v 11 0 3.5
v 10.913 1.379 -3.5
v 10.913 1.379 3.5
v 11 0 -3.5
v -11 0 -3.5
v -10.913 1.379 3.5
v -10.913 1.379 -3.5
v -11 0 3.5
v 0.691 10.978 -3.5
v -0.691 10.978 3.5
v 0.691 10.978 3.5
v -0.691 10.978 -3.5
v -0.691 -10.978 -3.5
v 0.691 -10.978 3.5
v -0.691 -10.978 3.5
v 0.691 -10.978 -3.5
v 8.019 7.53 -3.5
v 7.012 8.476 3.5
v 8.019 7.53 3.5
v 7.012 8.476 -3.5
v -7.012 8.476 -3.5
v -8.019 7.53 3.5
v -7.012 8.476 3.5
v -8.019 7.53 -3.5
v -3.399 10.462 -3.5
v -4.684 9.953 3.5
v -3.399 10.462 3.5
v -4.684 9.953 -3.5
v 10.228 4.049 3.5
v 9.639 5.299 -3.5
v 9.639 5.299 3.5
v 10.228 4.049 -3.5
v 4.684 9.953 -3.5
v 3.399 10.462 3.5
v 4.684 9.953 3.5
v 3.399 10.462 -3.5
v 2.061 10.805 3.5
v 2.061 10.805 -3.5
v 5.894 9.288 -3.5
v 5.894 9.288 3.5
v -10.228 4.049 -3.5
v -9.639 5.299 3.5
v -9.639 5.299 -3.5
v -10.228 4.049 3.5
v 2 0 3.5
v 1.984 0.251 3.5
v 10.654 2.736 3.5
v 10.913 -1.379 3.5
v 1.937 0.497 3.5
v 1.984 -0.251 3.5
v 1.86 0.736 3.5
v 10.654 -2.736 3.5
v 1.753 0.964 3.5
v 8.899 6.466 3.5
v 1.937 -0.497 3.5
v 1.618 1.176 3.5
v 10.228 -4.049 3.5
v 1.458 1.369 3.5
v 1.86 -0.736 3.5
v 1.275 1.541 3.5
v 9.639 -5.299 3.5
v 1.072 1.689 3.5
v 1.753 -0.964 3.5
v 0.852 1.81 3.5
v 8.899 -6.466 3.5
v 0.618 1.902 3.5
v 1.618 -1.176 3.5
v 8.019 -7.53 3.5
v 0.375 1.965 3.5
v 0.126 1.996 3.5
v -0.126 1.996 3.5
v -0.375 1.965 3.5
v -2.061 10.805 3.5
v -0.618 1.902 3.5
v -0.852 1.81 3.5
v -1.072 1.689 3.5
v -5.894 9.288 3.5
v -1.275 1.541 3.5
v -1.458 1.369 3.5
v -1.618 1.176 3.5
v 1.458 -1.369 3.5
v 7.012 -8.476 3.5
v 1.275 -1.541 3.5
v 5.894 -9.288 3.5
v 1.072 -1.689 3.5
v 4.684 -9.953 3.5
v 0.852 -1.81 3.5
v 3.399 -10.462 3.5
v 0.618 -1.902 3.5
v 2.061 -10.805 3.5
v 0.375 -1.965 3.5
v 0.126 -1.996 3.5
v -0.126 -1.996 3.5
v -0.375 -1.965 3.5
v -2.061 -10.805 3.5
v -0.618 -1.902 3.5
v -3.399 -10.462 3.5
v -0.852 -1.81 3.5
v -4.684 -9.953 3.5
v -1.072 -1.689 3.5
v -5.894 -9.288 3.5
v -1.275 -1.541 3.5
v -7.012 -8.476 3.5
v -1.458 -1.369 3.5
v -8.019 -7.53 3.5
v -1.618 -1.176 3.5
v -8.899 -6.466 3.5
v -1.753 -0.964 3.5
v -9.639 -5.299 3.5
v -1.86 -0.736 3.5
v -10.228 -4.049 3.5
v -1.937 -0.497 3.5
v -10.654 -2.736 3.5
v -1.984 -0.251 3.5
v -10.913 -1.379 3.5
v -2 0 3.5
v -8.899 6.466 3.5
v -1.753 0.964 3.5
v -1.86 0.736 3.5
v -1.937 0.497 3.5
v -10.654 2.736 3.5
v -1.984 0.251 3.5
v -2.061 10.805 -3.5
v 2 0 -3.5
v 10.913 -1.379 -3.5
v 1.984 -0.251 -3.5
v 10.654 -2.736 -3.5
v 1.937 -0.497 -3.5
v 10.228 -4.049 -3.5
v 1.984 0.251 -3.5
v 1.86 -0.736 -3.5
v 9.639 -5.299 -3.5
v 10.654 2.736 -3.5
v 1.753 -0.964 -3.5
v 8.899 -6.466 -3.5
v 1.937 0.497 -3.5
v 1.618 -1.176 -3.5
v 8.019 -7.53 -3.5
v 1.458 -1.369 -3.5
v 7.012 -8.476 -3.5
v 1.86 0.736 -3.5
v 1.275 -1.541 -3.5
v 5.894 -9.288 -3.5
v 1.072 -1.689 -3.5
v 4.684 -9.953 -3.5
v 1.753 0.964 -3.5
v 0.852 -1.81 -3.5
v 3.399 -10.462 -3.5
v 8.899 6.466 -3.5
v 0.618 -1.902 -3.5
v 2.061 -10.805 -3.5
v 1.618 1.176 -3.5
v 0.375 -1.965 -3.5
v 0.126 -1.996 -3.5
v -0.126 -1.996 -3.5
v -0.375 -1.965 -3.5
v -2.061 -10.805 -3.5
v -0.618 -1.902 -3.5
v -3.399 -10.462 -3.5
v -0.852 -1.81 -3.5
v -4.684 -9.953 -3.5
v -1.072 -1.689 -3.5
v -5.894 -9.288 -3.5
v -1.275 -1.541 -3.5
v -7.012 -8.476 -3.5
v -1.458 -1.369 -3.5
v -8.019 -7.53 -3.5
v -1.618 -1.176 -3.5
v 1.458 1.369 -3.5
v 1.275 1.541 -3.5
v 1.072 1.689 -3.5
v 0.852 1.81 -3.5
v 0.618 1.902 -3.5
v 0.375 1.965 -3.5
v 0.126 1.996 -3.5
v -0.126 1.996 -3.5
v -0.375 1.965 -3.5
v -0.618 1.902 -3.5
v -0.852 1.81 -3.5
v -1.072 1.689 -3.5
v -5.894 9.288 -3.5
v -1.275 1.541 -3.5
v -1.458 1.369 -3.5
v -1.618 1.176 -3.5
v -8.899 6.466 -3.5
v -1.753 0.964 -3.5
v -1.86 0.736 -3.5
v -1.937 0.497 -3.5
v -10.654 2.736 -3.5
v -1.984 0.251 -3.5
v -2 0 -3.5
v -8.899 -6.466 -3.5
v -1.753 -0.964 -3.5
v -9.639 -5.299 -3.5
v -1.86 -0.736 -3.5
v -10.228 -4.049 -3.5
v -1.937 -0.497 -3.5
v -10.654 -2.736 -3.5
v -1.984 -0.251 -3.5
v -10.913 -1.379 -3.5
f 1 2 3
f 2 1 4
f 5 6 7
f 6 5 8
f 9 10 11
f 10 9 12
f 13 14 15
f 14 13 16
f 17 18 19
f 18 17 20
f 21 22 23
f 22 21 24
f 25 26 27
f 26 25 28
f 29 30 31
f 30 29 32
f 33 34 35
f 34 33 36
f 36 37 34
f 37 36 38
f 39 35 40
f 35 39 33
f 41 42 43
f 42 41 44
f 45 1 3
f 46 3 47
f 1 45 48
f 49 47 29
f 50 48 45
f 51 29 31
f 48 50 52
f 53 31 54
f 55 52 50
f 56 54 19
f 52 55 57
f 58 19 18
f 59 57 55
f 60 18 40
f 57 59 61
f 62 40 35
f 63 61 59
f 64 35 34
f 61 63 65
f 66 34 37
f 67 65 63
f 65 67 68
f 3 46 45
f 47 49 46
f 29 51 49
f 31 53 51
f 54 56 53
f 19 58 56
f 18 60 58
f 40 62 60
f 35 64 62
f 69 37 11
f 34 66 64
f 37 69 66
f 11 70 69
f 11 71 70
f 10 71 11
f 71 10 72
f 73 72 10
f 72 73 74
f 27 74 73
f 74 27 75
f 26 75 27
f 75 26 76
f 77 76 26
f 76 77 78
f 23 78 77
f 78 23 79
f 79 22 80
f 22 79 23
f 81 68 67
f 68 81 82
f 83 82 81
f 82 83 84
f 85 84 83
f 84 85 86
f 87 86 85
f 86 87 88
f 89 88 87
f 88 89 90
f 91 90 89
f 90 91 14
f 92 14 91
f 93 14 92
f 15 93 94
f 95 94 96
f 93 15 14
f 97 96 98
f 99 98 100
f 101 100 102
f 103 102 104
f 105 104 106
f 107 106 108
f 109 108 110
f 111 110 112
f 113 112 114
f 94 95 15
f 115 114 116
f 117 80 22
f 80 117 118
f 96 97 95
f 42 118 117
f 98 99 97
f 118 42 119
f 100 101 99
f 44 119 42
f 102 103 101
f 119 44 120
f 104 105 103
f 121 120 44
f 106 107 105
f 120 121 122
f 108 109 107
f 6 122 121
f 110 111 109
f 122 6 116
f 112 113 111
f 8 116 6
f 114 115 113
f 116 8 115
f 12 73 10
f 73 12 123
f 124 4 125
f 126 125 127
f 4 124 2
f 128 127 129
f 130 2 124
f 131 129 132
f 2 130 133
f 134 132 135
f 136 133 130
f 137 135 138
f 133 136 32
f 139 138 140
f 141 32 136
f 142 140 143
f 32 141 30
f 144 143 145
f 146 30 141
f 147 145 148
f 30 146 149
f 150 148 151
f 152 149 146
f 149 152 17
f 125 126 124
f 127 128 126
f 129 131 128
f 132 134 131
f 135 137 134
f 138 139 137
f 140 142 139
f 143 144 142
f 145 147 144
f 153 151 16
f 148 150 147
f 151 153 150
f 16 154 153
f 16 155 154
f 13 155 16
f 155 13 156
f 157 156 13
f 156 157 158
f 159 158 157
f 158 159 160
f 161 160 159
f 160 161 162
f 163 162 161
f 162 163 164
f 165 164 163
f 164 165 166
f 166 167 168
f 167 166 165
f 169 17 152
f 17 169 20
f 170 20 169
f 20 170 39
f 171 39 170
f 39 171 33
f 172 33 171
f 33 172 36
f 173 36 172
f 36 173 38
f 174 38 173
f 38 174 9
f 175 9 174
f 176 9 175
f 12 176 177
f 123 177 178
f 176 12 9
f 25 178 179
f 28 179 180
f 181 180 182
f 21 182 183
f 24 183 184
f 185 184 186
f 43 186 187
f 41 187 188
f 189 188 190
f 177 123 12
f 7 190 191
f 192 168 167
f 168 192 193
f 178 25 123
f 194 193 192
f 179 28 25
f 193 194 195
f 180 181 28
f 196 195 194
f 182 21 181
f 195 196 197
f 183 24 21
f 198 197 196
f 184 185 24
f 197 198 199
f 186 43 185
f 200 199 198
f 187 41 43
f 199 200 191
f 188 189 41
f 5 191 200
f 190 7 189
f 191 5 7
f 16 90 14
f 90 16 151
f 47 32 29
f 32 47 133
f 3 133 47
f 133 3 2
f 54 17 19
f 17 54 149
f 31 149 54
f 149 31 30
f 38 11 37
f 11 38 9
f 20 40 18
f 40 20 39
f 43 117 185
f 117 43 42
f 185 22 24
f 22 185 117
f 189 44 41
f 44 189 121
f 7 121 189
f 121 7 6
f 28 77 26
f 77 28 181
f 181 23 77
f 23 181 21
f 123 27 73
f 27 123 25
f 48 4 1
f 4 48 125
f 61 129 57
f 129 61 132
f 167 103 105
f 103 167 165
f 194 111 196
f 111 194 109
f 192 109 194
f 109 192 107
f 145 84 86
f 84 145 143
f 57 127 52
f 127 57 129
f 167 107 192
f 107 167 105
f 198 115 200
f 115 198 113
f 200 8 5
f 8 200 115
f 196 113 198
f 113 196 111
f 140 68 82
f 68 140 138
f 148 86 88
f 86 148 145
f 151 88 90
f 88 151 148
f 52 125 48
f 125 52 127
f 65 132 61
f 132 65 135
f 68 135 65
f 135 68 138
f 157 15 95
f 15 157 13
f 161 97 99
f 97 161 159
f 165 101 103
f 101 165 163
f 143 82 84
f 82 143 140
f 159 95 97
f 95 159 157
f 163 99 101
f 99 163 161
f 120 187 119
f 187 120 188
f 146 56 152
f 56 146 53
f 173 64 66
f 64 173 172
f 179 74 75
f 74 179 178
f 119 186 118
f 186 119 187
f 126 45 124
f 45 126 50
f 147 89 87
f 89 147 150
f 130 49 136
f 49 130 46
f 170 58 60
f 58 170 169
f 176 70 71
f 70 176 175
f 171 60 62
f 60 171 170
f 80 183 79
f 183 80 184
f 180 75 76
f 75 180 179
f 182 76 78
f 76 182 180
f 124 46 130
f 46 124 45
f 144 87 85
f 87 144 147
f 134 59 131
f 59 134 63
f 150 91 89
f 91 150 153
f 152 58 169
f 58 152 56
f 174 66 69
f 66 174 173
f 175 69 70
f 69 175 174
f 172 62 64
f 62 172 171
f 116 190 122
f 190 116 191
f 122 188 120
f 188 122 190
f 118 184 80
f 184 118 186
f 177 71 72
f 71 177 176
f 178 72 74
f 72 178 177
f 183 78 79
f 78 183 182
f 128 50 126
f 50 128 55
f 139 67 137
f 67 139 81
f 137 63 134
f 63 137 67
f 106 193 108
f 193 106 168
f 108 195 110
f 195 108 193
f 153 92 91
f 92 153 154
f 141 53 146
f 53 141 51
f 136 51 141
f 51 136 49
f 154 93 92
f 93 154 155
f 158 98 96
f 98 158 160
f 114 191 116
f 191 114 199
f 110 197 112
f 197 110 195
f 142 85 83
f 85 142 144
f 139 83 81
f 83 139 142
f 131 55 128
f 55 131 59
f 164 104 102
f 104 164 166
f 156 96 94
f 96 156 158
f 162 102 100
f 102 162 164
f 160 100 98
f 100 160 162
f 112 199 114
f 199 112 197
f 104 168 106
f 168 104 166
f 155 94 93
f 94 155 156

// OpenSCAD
$fn = 50;


difference() {
	union() {
		translate(v = [0, 0, -3.5000000000]) {
			cylinder(h = 7, r = 11.0000000000);
		}
	}
	union() {
		translate(v = [0, 0, -100.0000000000]) {
			cylinder(h = 200, r = 2);
		}
	}
}
